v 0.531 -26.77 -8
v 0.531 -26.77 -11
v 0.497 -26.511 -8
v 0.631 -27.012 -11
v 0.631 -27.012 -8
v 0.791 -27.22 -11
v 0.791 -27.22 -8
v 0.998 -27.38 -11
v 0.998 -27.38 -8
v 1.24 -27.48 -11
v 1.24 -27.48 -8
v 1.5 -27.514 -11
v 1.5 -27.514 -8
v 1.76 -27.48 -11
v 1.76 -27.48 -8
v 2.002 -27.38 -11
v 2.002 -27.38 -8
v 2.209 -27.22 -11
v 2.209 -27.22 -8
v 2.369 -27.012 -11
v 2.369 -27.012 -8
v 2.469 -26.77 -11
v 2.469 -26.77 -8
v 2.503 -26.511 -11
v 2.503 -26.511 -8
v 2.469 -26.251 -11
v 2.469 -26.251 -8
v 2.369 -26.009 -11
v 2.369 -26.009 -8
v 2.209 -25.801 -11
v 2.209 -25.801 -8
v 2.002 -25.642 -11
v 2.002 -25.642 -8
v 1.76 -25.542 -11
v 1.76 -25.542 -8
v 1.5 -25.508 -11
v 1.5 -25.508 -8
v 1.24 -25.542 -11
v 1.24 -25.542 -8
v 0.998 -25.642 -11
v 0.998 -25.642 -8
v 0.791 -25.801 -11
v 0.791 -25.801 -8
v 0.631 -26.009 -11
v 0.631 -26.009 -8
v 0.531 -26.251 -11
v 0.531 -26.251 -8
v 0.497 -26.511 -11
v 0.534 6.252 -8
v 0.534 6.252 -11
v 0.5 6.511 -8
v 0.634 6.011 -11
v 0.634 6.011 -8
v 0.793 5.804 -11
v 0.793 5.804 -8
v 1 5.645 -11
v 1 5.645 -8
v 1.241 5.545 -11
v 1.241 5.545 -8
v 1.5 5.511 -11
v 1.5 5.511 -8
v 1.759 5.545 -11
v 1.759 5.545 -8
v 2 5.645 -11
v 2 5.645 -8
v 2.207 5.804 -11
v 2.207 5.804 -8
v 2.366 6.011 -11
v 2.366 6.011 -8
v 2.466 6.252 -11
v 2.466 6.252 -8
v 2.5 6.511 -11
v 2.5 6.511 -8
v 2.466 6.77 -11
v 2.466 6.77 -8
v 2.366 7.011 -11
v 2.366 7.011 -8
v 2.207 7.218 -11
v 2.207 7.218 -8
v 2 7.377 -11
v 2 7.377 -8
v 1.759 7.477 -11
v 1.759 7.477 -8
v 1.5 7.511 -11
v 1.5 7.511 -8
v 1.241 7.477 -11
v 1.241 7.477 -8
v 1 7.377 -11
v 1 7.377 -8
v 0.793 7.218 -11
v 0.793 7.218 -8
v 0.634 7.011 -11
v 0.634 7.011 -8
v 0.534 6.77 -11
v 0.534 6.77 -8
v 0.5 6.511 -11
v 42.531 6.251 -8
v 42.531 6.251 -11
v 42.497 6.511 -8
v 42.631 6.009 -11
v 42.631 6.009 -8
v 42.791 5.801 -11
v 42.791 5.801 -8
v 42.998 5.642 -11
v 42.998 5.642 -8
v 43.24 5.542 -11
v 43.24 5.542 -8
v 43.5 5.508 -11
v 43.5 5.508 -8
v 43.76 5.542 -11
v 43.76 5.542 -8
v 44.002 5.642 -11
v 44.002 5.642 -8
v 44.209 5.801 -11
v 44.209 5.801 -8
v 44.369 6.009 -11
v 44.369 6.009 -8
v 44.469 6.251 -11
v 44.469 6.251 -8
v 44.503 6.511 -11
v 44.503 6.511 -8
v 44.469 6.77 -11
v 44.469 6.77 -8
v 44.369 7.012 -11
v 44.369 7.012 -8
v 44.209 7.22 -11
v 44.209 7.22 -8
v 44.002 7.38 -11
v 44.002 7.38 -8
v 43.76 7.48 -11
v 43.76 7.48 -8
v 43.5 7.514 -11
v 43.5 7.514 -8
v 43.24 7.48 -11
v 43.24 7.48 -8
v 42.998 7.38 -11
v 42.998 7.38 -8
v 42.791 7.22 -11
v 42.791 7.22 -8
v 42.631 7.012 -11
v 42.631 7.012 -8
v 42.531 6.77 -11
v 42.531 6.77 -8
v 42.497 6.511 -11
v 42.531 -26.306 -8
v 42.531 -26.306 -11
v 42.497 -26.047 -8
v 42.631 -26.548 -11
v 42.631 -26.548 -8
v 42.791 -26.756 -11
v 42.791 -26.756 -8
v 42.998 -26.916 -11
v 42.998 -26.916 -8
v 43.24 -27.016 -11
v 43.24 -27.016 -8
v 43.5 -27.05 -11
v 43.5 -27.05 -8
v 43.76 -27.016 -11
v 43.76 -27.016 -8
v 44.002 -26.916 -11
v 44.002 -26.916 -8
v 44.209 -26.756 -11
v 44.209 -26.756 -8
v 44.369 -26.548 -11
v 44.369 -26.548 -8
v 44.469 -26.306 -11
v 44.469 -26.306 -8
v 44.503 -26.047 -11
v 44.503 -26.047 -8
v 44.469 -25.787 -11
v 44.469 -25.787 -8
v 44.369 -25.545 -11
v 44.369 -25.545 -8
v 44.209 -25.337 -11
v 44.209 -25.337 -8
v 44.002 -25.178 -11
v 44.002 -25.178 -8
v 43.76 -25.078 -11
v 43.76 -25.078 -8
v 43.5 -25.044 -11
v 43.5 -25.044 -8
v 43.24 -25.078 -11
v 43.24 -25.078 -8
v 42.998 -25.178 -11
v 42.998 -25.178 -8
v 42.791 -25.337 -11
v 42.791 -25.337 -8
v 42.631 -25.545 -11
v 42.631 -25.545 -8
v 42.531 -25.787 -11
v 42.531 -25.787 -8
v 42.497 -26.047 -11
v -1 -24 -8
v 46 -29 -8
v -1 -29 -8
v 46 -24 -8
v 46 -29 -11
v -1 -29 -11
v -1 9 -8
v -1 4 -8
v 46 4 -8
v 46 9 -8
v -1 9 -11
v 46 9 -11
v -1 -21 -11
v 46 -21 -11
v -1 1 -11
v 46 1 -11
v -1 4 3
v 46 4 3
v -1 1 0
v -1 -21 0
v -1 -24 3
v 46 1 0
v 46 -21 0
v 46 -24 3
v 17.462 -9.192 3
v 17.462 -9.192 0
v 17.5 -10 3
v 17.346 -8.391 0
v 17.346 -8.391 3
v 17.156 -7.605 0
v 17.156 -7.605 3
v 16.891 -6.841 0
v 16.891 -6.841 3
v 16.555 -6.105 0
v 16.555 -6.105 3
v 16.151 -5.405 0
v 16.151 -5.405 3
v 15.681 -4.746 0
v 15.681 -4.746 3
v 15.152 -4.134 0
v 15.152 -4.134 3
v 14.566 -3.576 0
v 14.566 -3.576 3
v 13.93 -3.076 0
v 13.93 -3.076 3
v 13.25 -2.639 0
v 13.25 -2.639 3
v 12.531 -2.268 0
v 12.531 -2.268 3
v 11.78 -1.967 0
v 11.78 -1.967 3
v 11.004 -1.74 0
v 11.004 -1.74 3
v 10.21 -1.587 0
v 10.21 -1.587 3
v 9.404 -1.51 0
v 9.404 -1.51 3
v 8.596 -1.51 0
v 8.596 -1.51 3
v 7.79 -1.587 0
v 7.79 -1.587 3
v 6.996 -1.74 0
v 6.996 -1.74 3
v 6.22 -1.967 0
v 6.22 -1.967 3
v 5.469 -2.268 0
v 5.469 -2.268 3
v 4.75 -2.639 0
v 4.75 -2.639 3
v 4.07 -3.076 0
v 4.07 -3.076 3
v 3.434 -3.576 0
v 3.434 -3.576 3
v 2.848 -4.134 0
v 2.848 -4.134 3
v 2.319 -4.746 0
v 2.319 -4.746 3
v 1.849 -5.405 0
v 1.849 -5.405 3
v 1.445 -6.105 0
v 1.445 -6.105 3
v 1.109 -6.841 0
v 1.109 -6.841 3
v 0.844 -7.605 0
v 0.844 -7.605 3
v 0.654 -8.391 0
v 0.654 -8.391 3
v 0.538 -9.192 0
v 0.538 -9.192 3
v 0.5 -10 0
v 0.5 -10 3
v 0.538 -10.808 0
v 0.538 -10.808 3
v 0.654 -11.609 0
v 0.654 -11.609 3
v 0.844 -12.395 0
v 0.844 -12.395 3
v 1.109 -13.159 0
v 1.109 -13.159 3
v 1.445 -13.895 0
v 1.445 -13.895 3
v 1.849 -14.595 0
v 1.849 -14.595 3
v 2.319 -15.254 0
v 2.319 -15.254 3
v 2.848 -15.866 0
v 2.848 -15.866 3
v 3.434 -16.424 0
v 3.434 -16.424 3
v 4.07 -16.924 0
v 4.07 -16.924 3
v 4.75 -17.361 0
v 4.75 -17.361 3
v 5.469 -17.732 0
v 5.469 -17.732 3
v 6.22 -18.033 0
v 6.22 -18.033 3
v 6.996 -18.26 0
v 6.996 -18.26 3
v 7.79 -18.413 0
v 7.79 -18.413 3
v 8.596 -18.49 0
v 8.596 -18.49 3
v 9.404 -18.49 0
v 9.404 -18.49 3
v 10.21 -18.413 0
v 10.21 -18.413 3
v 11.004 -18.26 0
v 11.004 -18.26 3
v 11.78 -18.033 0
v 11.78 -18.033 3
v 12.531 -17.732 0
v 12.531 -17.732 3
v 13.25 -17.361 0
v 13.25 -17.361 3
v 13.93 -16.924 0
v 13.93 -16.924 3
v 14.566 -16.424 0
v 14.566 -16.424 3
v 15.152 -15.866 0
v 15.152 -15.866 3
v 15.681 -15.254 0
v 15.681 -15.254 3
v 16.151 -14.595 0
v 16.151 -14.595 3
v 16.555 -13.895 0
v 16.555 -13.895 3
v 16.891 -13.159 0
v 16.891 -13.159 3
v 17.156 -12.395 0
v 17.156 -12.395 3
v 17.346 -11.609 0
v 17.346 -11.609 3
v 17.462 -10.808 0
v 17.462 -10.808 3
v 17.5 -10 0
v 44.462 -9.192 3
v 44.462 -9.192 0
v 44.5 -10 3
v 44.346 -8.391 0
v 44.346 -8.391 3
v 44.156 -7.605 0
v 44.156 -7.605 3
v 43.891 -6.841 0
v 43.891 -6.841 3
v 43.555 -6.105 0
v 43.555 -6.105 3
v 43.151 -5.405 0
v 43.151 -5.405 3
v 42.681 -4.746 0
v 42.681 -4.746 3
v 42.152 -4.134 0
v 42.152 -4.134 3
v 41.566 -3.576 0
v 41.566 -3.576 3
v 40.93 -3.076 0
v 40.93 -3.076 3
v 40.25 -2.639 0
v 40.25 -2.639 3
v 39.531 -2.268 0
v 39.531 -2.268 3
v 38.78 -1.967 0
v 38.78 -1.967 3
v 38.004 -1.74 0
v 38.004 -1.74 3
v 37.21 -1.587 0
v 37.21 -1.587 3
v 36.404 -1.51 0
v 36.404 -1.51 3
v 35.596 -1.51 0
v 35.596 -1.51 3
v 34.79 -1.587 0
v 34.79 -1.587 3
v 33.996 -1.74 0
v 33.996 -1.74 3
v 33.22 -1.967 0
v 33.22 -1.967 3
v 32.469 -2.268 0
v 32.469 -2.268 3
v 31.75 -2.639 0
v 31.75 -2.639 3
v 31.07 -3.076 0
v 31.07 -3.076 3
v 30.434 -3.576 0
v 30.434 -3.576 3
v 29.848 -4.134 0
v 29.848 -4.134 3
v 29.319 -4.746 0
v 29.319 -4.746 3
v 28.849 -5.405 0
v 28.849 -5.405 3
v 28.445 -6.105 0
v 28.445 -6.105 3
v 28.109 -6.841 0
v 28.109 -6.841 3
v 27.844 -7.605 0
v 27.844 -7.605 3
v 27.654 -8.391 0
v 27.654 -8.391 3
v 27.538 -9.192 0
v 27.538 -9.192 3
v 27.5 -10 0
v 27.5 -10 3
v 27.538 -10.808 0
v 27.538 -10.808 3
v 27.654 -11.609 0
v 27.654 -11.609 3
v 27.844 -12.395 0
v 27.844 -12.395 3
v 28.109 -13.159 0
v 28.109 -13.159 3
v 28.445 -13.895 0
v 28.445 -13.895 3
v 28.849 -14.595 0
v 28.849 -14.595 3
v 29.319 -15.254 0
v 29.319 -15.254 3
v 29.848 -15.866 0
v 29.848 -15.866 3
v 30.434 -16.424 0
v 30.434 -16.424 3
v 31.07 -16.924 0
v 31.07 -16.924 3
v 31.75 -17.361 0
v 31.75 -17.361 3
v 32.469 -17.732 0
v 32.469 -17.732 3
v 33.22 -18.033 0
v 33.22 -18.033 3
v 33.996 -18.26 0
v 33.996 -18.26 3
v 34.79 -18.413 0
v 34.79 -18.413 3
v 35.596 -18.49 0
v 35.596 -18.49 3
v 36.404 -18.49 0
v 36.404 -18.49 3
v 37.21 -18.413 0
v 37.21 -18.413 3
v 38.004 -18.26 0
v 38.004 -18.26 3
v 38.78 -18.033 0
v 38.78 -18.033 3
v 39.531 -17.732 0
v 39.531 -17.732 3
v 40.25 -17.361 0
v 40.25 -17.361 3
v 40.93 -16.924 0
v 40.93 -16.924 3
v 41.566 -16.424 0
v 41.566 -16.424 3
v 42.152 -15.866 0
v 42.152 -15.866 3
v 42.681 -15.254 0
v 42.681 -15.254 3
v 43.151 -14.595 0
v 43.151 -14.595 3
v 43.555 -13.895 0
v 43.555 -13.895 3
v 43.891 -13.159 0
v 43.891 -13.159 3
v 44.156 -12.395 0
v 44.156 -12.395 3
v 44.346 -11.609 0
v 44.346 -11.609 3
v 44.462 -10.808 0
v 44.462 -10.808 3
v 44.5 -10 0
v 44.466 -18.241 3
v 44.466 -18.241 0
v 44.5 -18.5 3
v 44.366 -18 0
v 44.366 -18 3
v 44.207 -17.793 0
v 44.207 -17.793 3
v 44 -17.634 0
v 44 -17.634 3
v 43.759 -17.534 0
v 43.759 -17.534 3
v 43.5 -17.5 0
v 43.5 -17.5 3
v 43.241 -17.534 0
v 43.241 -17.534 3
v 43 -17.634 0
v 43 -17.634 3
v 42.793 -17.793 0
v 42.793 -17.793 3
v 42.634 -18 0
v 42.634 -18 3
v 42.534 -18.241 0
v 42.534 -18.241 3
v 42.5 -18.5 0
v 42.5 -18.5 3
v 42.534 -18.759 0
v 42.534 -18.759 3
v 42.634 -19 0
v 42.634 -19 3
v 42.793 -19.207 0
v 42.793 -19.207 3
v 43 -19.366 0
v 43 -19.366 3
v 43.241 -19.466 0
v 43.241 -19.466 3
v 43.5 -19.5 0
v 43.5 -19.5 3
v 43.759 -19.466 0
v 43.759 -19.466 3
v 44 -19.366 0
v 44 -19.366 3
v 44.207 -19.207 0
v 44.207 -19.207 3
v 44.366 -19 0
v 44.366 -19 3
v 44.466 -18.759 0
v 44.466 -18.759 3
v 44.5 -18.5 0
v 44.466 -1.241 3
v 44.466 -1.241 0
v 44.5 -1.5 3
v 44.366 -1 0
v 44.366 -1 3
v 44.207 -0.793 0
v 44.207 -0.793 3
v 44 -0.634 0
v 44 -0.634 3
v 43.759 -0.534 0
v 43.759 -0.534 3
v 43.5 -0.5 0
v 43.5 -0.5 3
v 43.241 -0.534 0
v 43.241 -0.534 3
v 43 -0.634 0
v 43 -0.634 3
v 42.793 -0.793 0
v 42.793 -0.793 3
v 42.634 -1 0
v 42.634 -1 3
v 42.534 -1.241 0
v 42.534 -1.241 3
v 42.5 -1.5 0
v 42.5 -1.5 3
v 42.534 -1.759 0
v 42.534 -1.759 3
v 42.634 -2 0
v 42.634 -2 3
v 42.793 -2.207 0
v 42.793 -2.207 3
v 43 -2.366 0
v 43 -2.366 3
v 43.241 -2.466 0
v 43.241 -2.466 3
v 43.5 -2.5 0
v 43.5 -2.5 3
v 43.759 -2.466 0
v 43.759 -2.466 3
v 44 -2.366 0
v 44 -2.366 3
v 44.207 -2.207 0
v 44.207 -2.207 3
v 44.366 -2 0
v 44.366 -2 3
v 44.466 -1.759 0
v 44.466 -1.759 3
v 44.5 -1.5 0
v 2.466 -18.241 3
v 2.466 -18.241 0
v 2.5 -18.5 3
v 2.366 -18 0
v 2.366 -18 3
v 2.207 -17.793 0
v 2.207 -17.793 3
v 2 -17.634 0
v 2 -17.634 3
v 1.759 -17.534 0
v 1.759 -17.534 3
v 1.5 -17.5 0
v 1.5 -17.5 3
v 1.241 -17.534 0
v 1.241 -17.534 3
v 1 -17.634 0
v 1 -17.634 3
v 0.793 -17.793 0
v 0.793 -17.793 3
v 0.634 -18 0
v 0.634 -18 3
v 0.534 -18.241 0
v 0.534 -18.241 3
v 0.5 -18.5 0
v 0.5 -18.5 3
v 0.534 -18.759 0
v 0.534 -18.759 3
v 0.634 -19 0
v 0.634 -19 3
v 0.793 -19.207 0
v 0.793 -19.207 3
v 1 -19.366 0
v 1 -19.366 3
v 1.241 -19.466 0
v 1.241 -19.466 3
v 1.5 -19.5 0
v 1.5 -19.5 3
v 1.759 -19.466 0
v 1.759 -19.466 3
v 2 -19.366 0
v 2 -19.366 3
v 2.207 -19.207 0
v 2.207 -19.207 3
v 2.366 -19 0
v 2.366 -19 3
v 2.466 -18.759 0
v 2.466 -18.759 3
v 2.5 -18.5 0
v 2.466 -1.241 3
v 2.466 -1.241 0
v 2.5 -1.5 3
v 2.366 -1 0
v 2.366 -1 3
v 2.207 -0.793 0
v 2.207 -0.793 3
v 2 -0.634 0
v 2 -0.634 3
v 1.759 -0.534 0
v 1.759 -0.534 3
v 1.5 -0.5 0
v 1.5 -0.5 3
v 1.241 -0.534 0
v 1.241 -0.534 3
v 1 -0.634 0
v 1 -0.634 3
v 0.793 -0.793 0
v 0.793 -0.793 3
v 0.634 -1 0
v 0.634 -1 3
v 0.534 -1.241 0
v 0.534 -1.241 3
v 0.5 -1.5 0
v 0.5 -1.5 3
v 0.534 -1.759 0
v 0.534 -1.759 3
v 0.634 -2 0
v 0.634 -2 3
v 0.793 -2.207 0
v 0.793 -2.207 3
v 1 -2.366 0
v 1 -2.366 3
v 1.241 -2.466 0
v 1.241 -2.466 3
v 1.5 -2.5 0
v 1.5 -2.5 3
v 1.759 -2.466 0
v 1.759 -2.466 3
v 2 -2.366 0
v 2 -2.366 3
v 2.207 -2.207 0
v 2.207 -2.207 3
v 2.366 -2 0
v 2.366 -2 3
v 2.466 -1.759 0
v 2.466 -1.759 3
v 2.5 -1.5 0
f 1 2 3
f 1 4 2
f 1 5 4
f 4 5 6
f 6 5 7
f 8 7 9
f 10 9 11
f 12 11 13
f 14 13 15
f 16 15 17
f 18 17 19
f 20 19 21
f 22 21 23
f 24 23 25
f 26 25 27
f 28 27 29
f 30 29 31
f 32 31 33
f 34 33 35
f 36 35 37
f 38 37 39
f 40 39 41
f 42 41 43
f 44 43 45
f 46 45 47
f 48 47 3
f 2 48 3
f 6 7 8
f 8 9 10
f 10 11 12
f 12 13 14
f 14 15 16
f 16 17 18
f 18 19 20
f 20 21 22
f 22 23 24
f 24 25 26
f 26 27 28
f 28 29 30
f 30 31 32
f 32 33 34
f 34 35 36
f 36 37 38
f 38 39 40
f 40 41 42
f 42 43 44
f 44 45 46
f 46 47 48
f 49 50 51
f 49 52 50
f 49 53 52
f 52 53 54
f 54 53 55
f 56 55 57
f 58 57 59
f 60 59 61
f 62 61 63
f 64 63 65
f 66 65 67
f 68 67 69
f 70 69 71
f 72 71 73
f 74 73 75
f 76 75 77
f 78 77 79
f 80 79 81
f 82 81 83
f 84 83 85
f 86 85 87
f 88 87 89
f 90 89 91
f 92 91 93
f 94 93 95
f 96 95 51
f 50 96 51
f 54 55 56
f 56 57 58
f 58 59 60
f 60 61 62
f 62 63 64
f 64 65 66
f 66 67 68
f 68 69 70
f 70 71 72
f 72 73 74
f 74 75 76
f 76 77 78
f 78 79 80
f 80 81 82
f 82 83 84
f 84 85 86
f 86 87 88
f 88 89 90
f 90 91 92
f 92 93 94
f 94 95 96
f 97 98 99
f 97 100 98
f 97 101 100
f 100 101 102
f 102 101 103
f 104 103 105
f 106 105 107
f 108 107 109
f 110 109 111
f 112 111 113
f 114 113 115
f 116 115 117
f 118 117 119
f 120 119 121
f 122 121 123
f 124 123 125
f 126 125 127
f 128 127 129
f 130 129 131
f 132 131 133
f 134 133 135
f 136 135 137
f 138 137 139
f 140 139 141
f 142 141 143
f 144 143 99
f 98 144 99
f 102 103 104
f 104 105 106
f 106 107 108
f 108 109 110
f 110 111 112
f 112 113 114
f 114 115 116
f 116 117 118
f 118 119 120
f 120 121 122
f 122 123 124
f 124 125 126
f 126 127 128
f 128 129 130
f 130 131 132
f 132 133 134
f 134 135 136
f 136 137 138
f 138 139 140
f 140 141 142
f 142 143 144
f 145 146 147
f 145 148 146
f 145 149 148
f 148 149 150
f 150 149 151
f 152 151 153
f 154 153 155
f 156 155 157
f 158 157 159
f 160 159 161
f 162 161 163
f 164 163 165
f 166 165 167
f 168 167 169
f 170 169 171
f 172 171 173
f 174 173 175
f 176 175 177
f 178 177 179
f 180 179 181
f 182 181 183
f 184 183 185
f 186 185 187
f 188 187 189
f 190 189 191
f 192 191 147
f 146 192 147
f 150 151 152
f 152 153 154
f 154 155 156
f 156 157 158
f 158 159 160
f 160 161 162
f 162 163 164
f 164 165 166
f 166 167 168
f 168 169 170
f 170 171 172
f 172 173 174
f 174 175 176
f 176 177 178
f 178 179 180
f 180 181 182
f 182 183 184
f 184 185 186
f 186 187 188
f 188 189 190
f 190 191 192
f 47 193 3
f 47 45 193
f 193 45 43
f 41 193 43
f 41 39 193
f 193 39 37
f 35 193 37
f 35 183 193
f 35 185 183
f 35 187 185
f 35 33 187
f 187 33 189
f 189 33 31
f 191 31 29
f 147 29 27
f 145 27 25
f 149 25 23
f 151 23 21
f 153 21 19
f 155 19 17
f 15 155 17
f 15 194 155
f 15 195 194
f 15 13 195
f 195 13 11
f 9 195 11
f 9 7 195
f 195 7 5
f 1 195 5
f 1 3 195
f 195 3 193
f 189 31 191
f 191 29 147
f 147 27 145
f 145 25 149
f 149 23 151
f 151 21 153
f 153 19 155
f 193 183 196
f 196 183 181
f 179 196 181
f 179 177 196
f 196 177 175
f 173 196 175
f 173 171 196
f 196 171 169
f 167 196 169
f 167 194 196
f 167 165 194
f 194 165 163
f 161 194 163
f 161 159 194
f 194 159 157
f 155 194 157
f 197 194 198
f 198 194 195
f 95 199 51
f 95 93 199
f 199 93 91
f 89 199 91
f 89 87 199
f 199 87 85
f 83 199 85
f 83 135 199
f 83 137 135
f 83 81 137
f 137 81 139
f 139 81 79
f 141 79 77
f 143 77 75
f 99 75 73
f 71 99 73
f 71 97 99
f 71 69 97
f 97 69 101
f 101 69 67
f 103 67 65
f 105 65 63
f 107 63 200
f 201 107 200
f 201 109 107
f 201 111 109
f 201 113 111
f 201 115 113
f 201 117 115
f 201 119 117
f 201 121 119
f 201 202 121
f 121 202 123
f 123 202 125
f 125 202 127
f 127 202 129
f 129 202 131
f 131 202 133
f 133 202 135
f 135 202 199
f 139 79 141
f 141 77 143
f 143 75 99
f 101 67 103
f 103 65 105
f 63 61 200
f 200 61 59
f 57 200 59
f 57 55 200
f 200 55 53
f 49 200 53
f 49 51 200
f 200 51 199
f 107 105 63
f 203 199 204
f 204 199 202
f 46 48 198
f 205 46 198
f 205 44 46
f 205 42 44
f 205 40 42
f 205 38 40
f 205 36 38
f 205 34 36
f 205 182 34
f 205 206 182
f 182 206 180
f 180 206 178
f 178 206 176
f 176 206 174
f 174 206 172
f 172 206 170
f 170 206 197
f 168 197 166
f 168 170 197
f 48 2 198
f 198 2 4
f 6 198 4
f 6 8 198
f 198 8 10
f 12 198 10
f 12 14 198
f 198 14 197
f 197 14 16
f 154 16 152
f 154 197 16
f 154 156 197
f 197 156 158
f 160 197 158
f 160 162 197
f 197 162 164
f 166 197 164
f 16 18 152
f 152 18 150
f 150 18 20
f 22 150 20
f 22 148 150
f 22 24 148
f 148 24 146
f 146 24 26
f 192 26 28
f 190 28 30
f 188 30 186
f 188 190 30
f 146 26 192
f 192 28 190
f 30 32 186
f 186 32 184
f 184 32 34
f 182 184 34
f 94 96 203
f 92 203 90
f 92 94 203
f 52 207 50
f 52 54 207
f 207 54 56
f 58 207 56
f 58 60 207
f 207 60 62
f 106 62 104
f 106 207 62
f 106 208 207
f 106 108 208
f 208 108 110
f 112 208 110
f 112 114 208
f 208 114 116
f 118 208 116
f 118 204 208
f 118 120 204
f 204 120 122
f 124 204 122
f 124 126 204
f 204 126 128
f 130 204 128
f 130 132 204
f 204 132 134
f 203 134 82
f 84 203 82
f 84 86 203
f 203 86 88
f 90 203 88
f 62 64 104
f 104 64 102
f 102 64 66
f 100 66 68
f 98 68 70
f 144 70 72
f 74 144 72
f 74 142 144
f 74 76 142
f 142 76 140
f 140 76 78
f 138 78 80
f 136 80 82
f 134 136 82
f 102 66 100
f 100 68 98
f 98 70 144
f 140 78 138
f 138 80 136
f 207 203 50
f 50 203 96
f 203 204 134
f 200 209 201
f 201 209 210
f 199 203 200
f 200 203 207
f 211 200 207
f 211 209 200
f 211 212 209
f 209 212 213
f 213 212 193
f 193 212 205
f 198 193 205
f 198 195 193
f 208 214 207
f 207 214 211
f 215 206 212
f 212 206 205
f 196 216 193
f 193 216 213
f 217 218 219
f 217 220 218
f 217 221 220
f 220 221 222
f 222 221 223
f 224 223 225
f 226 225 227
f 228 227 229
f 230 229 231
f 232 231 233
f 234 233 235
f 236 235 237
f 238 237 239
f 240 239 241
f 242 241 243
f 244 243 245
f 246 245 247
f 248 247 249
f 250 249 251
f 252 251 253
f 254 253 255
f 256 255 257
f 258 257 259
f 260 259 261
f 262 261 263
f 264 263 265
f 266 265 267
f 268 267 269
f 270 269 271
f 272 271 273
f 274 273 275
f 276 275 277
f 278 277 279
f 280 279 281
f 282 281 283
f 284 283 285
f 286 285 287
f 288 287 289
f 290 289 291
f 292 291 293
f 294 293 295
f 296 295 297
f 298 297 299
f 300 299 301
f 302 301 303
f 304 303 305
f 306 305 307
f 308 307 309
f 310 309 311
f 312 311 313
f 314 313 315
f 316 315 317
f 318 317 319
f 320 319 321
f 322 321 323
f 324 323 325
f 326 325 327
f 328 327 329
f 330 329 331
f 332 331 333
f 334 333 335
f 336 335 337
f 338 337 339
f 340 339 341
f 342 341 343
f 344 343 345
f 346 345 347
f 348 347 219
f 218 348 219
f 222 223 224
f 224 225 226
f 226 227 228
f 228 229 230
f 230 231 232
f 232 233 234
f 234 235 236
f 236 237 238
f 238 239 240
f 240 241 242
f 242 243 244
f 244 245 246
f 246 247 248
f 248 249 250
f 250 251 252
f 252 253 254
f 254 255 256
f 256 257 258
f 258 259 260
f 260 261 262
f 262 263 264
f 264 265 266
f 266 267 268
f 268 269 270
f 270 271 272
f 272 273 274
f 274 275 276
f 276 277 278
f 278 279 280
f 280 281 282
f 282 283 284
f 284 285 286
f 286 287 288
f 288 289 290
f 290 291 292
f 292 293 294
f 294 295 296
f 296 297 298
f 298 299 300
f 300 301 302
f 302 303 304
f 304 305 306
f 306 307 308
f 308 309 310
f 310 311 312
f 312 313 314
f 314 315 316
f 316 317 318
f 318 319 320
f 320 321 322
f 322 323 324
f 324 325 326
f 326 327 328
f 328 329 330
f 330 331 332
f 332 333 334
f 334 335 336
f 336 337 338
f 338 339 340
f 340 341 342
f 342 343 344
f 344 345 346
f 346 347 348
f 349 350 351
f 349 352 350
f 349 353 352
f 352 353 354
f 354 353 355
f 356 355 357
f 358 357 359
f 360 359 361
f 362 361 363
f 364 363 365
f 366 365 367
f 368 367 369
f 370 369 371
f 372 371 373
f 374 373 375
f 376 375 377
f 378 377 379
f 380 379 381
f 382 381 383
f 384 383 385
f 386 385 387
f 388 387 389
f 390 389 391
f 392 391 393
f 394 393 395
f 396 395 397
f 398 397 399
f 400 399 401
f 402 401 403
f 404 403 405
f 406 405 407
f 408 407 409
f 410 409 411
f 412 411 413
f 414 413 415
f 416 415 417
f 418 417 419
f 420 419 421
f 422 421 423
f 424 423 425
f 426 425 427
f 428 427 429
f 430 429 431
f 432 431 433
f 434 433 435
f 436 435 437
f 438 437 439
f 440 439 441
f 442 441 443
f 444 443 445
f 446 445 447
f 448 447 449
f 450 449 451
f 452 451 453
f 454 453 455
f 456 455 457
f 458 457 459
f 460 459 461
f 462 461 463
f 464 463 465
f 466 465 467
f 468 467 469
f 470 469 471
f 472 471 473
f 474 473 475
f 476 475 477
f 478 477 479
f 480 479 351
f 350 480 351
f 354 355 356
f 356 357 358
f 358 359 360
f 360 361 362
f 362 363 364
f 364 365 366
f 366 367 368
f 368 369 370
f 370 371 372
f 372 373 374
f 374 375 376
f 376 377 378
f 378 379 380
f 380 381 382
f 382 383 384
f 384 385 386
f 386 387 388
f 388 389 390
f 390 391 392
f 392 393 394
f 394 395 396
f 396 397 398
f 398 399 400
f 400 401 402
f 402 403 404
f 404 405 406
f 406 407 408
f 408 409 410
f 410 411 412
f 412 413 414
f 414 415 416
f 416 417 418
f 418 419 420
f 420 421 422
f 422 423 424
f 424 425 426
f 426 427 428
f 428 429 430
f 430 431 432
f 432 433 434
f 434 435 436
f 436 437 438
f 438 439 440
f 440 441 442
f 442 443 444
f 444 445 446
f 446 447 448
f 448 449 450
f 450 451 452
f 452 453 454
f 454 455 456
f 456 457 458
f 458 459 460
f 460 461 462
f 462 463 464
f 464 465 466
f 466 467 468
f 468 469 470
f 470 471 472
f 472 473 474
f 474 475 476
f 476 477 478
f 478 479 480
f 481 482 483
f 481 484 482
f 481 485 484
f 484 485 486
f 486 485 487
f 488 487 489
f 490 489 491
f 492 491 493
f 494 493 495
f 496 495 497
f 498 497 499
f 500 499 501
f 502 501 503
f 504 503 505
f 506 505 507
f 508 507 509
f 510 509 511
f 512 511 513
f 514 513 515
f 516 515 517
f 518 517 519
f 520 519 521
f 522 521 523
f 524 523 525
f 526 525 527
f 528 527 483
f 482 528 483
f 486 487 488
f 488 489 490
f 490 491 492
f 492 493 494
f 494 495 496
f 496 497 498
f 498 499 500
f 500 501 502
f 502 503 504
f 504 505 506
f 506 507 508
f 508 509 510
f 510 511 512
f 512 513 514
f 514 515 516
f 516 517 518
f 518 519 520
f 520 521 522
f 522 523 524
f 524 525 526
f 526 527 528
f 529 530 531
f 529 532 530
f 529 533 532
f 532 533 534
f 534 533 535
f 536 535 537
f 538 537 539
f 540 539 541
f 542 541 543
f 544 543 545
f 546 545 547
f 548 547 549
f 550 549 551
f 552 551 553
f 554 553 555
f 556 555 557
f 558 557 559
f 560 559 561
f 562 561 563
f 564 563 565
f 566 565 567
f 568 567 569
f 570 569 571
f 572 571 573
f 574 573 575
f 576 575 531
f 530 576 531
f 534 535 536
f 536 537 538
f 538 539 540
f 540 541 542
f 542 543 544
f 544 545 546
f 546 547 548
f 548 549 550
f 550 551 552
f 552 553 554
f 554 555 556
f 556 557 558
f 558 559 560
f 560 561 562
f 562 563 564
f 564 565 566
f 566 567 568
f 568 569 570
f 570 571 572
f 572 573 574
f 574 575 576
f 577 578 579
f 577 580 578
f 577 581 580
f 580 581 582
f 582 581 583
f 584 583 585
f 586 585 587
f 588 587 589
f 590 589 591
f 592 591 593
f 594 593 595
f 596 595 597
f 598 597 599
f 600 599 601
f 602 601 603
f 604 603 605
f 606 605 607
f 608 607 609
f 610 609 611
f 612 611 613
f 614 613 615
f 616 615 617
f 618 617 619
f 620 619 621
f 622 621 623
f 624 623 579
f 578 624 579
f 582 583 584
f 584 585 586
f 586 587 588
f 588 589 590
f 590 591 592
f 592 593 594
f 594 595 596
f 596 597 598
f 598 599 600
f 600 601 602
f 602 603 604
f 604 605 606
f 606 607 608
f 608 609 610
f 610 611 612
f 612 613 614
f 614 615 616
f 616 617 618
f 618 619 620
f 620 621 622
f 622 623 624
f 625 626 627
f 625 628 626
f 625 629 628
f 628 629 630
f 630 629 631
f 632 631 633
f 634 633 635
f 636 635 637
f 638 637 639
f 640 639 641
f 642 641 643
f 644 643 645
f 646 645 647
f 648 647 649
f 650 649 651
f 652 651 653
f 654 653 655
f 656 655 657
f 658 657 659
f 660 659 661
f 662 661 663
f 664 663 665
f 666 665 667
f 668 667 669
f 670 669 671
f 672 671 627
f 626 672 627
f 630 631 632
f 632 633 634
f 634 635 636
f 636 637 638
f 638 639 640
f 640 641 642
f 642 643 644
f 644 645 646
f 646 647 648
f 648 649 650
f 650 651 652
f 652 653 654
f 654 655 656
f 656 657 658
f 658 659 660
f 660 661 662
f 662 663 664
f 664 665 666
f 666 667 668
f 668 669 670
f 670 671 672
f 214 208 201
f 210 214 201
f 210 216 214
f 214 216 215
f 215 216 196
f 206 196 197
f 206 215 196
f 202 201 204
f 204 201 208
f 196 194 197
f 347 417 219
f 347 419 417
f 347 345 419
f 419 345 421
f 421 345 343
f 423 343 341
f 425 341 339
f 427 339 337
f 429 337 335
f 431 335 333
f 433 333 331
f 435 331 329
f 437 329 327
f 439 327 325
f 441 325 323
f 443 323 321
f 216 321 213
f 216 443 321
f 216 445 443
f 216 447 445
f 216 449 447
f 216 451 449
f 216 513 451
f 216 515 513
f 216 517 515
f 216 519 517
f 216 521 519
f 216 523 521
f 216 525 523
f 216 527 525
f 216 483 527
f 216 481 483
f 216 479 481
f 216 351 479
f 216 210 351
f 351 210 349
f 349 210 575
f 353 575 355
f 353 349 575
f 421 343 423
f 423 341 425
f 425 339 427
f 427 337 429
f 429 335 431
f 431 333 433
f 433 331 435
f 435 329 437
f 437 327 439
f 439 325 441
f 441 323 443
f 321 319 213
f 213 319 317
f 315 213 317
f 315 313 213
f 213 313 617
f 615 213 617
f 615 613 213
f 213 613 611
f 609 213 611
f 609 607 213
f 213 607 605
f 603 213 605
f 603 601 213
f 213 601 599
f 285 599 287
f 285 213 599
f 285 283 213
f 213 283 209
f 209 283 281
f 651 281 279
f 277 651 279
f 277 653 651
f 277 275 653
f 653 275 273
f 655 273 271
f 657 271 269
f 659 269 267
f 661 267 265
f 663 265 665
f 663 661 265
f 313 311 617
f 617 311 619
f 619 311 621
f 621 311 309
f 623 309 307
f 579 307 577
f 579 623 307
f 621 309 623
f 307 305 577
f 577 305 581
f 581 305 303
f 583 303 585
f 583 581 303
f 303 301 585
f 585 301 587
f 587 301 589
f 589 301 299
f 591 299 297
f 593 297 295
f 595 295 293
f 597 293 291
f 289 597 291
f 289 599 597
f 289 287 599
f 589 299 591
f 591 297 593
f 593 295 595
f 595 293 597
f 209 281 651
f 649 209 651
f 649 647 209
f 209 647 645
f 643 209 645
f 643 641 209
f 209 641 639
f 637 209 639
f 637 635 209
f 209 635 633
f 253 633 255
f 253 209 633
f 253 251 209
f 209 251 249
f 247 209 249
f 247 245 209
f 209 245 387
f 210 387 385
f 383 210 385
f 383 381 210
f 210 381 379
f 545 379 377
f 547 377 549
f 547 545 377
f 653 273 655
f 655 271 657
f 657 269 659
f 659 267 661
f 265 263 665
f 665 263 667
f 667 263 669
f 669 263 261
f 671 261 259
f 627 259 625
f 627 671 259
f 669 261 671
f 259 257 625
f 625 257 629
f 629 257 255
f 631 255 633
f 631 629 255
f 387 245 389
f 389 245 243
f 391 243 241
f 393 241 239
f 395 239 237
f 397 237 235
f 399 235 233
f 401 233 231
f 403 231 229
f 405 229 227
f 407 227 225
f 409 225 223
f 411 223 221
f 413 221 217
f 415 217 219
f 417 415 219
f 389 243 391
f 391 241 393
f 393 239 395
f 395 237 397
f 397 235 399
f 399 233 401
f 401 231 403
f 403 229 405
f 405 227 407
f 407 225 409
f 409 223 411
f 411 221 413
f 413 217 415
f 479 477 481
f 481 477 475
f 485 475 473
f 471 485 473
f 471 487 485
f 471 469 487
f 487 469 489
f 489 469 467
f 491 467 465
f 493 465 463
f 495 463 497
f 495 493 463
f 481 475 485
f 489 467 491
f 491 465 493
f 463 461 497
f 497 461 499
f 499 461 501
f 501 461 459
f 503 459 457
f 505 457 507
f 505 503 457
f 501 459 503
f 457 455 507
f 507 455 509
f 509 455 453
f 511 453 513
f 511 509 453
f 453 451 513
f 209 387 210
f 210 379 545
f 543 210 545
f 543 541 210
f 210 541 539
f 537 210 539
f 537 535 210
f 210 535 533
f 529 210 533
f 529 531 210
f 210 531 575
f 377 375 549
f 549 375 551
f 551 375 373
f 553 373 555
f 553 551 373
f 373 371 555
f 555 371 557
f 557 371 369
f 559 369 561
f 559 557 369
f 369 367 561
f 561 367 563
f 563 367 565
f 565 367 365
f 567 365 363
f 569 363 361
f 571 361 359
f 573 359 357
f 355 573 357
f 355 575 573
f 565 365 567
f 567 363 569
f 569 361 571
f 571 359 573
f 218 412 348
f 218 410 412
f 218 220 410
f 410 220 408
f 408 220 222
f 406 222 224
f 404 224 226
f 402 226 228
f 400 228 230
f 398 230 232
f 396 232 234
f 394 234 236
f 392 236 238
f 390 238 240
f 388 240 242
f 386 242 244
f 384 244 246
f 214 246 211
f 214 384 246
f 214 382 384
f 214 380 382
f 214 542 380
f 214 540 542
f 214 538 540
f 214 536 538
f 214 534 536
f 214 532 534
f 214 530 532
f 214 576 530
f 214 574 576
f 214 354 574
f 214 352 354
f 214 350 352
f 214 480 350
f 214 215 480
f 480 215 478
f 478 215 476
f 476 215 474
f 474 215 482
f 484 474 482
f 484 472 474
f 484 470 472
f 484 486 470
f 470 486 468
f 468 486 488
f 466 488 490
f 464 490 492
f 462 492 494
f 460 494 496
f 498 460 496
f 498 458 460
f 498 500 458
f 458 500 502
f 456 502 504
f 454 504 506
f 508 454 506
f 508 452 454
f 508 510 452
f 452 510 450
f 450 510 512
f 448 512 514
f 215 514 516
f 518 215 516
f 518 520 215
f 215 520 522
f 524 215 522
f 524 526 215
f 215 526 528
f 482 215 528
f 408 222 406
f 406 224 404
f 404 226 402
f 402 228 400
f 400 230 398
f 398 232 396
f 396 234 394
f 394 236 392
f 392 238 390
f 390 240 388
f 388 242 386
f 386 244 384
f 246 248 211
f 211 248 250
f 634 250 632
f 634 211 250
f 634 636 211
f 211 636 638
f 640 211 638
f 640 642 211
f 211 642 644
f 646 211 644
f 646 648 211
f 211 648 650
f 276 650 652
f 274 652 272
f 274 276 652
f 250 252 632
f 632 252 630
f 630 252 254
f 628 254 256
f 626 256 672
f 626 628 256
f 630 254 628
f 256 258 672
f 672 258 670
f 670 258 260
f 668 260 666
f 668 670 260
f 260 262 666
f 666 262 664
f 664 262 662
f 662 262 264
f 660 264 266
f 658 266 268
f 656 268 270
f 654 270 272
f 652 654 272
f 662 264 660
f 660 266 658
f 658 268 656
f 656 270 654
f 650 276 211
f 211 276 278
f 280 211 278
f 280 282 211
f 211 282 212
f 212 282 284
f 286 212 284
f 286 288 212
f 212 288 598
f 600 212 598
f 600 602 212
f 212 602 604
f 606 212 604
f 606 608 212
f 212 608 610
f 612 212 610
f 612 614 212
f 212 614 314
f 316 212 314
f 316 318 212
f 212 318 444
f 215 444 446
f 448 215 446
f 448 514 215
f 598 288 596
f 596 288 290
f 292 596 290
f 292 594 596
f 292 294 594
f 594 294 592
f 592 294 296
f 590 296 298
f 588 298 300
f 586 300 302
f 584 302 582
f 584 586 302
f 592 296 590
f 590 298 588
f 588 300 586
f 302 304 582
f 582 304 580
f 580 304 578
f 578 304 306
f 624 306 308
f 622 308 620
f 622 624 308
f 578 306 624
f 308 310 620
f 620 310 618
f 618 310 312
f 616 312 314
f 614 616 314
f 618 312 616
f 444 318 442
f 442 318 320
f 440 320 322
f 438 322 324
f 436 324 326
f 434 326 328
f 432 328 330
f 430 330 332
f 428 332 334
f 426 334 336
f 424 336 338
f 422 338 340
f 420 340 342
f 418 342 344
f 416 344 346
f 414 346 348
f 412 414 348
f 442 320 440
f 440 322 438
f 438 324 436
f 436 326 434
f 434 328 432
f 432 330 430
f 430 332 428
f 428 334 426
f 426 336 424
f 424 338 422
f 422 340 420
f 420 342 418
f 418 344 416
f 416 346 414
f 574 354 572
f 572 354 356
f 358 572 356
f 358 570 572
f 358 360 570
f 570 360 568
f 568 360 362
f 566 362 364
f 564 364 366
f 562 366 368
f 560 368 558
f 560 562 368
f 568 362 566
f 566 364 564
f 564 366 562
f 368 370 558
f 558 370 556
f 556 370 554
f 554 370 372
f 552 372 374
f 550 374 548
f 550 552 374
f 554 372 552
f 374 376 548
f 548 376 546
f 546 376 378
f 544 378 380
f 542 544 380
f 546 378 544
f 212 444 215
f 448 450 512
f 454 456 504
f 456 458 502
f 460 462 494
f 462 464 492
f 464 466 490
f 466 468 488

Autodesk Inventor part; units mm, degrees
ref_plane "YZ Plane" through (0, 0, 0) normal (1, 0, 0) x (0, 1, 0)
ref_plane "XZ Plane" through (0, 0, 0) normal (0, 1, 0) x (-1, 0, 0)
ref_plane "XY Plane" through (0, 0, 0) normal (0, 0, 1) x (1, 0, 0)
sketch "Sketch1" plane through (0, 0, 0) normal (0, 0, 1) x (1, 0, 0)
  circle A0 centre (36, -10) radius 0.8353 projected
  circle A1 centre (9, -10) radius 0.8353 projected
  circle A2 centre (1.5, -1.5) radius 1 projected
  circle A3 centre (1.5, -18.5) radius 1 projected
  circle A4 centre (43.5, -1.5) radius 1 projected
  circle A5 centre (43.5, -18.5) radius 1 projected
  line L0 (0, -20) -> (45, -20) projected
  line L1 (45, -20) -> (45, 0) projected
  line L2 (45, 0) -> (0, 0) projected
  line L3 (0, 0) -> (0, -20) projected
  circle A6 centre (36, -10) radius 8.5
  line L4 (46, 1) -> (-1, 1)
  line L5 (-1, 1) -> (-1, -21)
  line L6 (-1, -21) -> (46, -21)
  line L7 (46, -21) -> (46, 1)
  circle A7 centre (9, -10) radius 8.5
  circle A8 centre (36, -10) radius 8 projected
  circle A9 centre (9, -10) radius 8 projected
  dimension "d0" = 17
  dimension "d1" = 47
  dimension "d2" = 22
  dimension "d3" = 1
  dimension "d4" = 1
  dimension "d5" = 17
extrude "Extrusion1" add sketch "Sketch1" along normal blind 3 contours L3 L2 L1 L0 | L7 L6 L5 L4
sketch "Sketch5" plane through (46, -21, 0) normal (1, 0, 0) x (0, 0, -1)
  line L0 (-3, 0) -> (11, 0)
  line L1 (11, -3) -> (-3, -3)
  line L2 (-3, -3) -> (-3, 0)
  line L3 (11, -3) -> (14, -3)
  line L4 (14, -3) -> (14, 22)
  line L5 (14, 22) -> (11, 22)
  line L6 (11, 22) -> (11, 0)
  point P0 (0, 21)
  dimension "d12" = 3
  dimension "d14" = 3
  dimension "d15" = 22
extrude "Extrusion2" add sketch "Sketch5" against normal blind 47
sketch "Sketch6" plane through (46, -24, -14) normal (0, 0, -1) x (-1, 0, 0)
  circle A0 centre (2.5, 22.5) radius 1 projected
  circle A1 centre (44.5, 22.5) radius 1 projected
  circle A2 centre (44.5, 5.5) radius 1 projected
  circle A3 centre (2.5, 5.5) radius 1 projected
  line L0 (0, 25) -> (47, 25) projected
  line L1 (42, 25) -> (5, 25)
  line L2 (5, 25) -> (5, 5)
  line L3 (5, 5) -> (42, 5)
  line L4 (42, 5) -> (42, 25)
  line L5 (47, 25) -> (47, 0) projected
  line L6 (0, 25) -> (0, 0) projected
  line L7 (0, 0) -> (47, 0) projected
  point P0 (46, 24)
  dimension "d18" = 5
  dimension "d19" = 5
  dimension "d20" = 5
extrude "Extrusion3" cut sketch "Sketch6" against normal up to surface (3 mm away) contours L0 L4 L3 L2
sketch "Sketch8" plane through (46, 1, -11) normal (0, 1, 0) x (1, 0, 0)
  line L0 (0, 3) -> (-47, 3)
  line L1 (-47, 3) -> (-47, -14)
  line L2 (-47, -14) -> (0, -14)
  line L3 (0, -14) -> (0, 3)
  point P0 (-46, -11)
  point P1 (0, -14)
extrude "Extrusion4" add sketch "Sketch8" along normal blind 3
sketch "Sketch9" plane through (46, -24, -14) normal (0, 0, -1) x (-1, 0, 0)
  line L0 (0, 28) -> (47, 28) projected
  line L1 (0, 0) -> (0, 28) projected
  line L2 (47, 0) -> (47, 28) projected
  line L3 (0, 0) -> (47, 0) projected
  point P0 (46, 24)
extrude "Extrusion5" cut sketch "Sketch9" against normal blind 3
sketch "Sketch10" plane through (46, 4, -11) normal (0, 1, 0) x (1, 0, 0)
  line L0 (-47, 0) -> (0, 0)
  line L1 (0, 0) -> (0, -3)
  line L2 (0, -3) -> (-47, -3)
  line L3 (-47, -3) -> (-47, 0)
  point P0 (-46, -11)
  dimension "d27" = 3
extrude "Extrusion6" add sketch "Sketch10" along normal blind 5
sketch "Sketch11" plane through (-1, -24, 3) normal (0, -1, 0) x (1, 0, 0)
  line L0 (47, -14) -> (0, -14)
  line L1 (0, -14) -> (0, -11)
  line L2 (0, -11) -> (47, -11)
  line L3 (47, -11) -> (47, -14)
  point P0 (1, -3)
  dimension "d30" = 3
extrude "Extrusion7" add sketch "Sketch11" along normal blind 5
sketch "Sketch12" plane through (46, -24, -11) normal (0, 0, -1) x (-1, 0, 0)
  circle A0 centre (2.5, 22.5) radius 1 projected
  circle A1 centre (2.5, 5.5) radius 1 projected
  circle A2 centre (44.5, 22.5) radius 1 projected
  circle A3 centre (44.5, 5.5) radius 1 projected
  circle A4 centre (2.5, 30.5108) radius 1.0033
  line L0 (0, 25) -> (0, 33) projected
  line L1 (0, 33) -> (47, 33) projected
  circle A5 centre (44.5, 30.5108) radius 1
  circle A6 centre (44.5, -2.5108) radius 1.0033
  circle A7 centre (2.5, -2.0468) radius 1.0033
  line L2 (47, -5) -> (0, -5) projected
  point P0 (46, 24)
  dimension "d36" = 2.0066
  dimension "d37" = 2.0066
  dimension "d38" = 2.4892
extrude "Extrusion8" cut sketch "Sketch12" against normal up to next contours A4 | A5 | A6 | A7
properties part number "ProxSensor_Bracket"
